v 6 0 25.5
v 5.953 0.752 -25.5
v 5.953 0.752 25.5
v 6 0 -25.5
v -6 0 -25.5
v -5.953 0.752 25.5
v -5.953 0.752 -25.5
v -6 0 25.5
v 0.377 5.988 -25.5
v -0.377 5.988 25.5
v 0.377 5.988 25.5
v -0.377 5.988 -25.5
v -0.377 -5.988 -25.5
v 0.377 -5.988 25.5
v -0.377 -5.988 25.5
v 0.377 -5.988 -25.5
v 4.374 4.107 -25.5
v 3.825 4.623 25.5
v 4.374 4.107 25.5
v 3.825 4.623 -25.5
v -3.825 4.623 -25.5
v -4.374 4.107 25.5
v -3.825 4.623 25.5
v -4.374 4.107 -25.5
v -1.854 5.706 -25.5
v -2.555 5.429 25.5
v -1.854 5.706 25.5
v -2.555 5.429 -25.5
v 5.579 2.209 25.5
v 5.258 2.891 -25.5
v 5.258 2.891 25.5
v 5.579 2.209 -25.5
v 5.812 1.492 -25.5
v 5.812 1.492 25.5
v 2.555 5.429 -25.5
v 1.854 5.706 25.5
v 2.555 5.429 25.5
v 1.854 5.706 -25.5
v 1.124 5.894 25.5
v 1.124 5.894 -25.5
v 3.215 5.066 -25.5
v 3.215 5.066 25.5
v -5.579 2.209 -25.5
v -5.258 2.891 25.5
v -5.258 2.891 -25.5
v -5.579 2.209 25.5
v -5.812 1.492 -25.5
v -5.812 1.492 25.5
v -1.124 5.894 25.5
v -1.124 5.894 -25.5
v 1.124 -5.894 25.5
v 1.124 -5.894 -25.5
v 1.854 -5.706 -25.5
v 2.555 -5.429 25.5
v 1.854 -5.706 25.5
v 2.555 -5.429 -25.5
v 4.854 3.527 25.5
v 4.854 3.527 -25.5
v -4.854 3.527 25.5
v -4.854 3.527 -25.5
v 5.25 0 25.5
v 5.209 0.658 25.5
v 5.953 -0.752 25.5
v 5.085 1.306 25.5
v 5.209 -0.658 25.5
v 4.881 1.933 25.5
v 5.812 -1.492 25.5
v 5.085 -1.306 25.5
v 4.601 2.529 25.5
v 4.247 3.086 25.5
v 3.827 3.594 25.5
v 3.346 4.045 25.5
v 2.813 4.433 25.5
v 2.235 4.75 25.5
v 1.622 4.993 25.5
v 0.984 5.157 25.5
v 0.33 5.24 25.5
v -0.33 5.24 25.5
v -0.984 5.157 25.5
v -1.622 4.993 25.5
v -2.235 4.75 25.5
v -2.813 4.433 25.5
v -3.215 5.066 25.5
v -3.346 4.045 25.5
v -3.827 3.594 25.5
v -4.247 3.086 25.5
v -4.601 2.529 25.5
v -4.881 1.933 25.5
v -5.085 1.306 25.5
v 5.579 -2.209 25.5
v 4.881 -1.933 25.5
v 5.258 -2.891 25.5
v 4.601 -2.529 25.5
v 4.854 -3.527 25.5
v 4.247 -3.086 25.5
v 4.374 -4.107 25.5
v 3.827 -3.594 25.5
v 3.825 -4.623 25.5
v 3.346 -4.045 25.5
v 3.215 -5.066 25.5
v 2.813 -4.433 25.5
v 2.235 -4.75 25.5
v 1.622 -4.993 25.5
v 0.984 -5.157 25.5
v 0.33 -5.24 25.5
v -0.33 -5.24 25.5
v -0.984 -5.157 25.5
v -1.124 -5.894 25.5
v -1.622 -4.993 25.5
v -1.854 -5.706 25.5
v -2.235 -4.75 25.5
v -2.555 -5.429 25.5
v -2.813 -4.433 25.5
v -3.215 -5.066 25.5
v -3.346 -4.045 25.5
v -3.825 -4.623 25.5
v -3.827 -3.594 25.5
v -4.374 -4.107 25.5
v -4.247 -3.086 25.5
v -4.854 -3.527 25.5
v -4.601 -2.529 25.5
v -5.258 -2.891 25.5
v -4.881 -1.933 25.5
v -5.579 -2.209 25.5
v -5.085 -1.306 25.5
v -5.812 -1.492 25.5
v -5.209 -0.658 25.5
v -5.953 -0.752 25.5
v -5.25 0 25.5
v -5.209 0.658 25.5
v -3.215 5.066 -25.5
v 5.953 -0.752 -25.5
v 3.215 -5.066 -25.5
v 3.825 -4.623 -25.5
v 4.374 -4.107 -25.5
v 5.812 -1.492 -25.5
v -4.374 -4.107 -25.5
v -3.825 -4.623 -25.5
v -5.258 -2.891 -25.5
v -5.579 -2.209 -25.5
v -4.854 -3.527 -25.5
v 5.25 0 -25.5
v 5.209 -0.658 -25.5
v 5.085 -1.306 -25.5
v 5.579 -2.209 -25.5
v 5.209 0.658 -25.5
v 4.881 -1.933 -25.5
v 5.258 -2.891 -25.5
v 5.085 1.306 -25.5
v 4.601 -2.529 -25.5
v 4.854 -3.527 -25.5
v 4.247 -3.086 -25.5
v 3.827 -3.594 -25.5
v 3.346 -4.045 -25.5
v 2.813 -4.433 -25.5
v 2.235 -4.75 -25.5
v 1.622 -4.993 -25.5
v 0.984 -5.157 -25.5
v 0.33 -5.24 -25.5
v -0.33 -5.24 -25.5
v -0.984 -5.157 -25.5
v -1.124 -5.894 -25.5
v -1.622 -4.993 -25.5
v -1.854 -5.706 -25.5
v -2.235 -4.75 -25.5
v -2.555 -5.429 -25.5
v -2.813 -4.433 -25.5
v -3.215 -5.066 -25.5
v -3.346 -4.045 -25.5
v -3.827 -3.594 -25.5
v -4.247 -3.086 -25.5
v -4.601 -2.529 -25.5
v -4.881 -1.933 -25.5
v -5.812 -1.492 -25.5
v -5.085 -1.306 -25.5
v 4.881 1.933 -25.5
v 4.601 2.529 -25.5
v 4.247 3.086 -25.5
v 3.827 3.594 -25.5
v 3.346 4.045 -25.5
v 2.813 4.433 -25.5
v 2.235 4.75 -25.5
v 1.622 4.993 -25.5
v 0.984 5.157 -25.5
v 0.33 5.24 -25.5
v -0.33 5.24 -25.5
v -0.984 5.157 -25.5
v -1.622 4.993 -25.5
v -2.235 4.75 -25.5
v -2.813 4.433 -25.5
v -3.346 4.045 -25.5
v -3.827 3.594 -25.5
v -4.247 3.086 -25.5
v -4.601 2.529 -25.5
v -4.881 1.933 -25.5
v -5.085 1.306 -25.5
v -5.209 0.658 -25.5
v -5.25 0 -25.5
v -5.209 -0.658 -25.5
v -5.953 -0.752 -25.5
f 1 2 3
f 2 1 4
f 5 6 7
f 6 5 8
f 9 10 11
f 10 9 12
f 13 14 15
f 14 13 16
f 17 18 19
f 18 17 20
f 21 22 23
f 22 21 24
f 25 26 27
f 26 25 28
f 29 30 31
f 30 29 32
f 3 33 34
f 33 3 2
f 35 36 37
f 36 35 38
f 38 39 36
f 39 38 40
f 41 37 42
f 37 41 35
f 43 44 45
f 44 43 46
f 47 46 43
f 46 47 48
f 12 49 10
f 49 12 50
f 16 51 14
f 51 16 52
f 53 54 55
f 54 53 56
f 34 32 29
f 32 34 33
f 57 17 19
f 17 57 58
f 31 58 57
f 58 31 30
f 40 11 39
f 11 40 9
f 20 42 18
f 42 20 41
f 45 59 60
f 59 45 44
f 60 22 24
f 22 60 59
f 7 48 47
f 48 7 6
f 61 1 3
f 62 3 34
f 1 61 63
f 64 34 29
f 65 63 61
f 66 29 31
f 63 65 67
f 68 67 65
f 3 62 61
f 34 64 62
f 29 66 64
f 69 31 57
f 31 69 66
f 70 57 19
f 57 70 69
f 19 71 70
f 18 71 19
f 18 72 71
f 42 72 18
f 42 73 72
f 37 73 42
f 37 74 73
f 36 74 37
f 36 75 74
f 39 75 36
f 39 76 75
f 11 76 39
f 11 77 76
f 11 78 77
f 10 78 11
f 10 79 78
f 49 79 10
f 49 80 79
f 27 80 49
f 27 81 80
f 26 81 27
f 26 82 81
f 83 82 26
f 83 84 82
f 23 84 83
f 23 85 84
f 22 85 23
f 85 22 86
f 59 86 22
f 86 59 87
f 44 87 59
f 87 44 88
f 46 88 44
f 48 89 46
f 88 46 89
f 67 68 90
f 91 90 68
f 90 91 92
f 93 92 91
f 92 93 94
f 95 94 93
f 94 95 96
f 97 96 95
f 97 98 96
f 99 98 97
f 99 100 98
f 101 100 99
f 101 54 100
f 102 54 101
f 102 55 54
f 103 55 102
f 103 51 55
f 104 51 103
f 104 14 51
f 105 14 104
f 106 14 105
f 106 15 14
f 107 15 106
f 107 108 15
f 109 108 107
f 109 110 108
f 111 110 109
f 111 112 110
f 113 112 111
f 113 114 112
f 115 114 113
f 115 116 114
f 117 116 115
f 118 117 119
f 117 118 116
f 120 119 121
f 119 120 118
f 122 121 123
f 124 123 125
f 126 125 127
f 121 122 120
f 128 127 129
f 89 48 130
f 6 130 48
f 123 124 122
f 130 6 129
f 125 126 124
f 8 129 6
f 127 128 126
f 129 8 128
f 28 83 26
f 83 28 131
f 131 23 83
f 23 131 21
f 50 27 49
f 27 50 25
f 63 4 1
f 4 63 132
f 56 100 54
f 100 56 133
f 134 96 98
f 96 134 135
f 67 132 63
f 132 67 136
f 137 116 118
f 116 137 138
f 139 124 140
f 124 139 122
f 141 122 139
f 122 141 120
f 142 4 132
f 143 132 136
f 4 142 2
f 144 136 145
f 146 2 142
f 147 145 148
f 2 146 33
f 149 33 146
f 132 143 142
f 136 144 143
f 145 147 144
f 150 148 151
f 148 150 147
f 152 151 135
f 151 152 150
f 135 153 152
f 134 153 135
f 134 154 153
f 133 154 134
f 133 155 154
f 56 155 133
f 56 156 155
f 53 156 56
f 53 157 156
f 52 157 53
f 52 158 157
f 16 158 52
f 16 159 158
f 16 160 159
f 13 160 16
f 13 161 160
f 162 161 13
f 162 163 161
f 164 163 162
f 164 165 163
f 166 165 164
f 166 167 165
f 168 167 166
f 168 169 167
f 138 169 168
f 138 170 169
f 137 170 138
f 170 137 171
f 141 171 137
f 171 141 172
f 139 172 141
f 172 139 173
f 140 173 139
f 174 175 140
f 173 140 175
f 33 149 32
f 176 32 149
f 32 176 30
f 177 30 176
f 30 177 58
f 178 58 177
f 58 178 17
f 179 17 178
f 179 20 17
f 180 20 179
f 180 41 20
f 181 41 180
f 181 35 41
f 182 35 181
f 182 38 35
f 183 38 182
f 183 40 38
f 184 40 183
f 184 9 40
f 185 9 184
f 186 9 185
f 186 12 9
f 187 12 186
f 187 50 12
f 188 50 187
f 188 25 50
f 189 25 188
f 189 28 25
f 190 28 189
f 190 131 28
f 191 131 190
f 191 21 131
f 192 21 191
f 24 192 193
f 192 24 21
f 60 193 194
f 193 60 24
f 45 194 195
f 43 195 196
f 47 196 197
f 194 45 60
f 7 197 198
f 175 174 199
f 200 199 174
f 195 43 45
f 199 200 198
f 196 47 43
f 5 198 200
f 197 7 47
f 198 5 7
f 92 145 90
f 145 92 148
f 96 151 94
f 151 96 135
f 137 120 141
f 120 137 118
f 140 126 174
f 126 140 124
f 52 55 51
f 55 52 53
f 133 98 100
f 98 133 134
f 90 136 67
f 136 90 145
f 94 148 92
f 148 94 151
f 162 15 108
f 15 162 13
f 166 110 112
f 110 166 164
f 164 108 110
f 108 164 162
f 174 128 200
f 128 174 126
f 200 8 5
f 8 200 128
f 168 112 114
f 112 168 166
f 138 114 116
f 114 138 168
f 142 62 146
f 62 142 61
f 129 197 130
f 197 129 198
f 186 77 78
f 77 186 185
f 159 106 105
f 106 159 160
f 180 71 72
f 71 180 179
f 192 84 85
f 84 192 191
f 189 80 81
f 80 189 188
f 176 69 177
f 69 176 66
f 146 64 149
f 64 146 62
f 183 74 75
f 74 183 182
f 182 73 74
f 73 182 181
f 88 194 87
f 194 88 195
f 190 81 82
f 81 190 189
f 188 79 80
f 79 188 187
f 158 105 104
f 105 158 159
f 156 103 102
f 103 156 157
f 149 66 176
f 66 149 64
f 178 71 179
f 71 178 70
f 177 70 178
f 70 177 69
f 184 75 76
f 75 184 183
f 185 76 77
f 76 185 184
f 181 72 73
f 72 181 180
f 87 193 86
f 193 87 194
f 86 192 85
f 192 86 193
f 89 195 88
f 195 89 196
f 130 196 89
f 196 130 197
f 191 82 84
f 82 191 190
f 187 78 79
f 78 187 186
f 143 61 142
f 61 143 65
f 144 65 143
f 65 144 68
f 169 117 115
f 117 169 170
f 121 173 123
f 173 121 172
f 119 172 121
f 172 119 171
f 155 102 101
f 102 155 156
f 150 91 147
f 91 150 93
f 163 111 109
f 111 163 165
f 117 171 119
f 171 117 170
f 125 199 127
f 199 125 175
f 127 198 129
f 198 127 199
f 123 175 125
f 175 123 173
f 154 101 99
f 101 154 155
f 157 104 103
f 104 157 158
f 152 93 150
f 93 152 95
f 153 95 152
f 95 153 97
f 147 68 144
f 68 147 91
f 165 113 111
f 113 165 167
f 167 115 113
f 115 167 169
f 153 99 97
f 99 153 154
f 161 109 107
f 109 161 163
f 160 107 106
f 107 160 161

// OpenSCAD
$fn = 50;


difference() {
	union() {
		translate(v = [0, 0, -25.5000000000]) {
			cylinder(h = 51, r = 6.0000000000);
		}
	}
	union() {
		translate(v = [0, 0, -100.0000000000]) {
			cylinder(h = 200, r = 5.2500000000);
		}
	}
}
